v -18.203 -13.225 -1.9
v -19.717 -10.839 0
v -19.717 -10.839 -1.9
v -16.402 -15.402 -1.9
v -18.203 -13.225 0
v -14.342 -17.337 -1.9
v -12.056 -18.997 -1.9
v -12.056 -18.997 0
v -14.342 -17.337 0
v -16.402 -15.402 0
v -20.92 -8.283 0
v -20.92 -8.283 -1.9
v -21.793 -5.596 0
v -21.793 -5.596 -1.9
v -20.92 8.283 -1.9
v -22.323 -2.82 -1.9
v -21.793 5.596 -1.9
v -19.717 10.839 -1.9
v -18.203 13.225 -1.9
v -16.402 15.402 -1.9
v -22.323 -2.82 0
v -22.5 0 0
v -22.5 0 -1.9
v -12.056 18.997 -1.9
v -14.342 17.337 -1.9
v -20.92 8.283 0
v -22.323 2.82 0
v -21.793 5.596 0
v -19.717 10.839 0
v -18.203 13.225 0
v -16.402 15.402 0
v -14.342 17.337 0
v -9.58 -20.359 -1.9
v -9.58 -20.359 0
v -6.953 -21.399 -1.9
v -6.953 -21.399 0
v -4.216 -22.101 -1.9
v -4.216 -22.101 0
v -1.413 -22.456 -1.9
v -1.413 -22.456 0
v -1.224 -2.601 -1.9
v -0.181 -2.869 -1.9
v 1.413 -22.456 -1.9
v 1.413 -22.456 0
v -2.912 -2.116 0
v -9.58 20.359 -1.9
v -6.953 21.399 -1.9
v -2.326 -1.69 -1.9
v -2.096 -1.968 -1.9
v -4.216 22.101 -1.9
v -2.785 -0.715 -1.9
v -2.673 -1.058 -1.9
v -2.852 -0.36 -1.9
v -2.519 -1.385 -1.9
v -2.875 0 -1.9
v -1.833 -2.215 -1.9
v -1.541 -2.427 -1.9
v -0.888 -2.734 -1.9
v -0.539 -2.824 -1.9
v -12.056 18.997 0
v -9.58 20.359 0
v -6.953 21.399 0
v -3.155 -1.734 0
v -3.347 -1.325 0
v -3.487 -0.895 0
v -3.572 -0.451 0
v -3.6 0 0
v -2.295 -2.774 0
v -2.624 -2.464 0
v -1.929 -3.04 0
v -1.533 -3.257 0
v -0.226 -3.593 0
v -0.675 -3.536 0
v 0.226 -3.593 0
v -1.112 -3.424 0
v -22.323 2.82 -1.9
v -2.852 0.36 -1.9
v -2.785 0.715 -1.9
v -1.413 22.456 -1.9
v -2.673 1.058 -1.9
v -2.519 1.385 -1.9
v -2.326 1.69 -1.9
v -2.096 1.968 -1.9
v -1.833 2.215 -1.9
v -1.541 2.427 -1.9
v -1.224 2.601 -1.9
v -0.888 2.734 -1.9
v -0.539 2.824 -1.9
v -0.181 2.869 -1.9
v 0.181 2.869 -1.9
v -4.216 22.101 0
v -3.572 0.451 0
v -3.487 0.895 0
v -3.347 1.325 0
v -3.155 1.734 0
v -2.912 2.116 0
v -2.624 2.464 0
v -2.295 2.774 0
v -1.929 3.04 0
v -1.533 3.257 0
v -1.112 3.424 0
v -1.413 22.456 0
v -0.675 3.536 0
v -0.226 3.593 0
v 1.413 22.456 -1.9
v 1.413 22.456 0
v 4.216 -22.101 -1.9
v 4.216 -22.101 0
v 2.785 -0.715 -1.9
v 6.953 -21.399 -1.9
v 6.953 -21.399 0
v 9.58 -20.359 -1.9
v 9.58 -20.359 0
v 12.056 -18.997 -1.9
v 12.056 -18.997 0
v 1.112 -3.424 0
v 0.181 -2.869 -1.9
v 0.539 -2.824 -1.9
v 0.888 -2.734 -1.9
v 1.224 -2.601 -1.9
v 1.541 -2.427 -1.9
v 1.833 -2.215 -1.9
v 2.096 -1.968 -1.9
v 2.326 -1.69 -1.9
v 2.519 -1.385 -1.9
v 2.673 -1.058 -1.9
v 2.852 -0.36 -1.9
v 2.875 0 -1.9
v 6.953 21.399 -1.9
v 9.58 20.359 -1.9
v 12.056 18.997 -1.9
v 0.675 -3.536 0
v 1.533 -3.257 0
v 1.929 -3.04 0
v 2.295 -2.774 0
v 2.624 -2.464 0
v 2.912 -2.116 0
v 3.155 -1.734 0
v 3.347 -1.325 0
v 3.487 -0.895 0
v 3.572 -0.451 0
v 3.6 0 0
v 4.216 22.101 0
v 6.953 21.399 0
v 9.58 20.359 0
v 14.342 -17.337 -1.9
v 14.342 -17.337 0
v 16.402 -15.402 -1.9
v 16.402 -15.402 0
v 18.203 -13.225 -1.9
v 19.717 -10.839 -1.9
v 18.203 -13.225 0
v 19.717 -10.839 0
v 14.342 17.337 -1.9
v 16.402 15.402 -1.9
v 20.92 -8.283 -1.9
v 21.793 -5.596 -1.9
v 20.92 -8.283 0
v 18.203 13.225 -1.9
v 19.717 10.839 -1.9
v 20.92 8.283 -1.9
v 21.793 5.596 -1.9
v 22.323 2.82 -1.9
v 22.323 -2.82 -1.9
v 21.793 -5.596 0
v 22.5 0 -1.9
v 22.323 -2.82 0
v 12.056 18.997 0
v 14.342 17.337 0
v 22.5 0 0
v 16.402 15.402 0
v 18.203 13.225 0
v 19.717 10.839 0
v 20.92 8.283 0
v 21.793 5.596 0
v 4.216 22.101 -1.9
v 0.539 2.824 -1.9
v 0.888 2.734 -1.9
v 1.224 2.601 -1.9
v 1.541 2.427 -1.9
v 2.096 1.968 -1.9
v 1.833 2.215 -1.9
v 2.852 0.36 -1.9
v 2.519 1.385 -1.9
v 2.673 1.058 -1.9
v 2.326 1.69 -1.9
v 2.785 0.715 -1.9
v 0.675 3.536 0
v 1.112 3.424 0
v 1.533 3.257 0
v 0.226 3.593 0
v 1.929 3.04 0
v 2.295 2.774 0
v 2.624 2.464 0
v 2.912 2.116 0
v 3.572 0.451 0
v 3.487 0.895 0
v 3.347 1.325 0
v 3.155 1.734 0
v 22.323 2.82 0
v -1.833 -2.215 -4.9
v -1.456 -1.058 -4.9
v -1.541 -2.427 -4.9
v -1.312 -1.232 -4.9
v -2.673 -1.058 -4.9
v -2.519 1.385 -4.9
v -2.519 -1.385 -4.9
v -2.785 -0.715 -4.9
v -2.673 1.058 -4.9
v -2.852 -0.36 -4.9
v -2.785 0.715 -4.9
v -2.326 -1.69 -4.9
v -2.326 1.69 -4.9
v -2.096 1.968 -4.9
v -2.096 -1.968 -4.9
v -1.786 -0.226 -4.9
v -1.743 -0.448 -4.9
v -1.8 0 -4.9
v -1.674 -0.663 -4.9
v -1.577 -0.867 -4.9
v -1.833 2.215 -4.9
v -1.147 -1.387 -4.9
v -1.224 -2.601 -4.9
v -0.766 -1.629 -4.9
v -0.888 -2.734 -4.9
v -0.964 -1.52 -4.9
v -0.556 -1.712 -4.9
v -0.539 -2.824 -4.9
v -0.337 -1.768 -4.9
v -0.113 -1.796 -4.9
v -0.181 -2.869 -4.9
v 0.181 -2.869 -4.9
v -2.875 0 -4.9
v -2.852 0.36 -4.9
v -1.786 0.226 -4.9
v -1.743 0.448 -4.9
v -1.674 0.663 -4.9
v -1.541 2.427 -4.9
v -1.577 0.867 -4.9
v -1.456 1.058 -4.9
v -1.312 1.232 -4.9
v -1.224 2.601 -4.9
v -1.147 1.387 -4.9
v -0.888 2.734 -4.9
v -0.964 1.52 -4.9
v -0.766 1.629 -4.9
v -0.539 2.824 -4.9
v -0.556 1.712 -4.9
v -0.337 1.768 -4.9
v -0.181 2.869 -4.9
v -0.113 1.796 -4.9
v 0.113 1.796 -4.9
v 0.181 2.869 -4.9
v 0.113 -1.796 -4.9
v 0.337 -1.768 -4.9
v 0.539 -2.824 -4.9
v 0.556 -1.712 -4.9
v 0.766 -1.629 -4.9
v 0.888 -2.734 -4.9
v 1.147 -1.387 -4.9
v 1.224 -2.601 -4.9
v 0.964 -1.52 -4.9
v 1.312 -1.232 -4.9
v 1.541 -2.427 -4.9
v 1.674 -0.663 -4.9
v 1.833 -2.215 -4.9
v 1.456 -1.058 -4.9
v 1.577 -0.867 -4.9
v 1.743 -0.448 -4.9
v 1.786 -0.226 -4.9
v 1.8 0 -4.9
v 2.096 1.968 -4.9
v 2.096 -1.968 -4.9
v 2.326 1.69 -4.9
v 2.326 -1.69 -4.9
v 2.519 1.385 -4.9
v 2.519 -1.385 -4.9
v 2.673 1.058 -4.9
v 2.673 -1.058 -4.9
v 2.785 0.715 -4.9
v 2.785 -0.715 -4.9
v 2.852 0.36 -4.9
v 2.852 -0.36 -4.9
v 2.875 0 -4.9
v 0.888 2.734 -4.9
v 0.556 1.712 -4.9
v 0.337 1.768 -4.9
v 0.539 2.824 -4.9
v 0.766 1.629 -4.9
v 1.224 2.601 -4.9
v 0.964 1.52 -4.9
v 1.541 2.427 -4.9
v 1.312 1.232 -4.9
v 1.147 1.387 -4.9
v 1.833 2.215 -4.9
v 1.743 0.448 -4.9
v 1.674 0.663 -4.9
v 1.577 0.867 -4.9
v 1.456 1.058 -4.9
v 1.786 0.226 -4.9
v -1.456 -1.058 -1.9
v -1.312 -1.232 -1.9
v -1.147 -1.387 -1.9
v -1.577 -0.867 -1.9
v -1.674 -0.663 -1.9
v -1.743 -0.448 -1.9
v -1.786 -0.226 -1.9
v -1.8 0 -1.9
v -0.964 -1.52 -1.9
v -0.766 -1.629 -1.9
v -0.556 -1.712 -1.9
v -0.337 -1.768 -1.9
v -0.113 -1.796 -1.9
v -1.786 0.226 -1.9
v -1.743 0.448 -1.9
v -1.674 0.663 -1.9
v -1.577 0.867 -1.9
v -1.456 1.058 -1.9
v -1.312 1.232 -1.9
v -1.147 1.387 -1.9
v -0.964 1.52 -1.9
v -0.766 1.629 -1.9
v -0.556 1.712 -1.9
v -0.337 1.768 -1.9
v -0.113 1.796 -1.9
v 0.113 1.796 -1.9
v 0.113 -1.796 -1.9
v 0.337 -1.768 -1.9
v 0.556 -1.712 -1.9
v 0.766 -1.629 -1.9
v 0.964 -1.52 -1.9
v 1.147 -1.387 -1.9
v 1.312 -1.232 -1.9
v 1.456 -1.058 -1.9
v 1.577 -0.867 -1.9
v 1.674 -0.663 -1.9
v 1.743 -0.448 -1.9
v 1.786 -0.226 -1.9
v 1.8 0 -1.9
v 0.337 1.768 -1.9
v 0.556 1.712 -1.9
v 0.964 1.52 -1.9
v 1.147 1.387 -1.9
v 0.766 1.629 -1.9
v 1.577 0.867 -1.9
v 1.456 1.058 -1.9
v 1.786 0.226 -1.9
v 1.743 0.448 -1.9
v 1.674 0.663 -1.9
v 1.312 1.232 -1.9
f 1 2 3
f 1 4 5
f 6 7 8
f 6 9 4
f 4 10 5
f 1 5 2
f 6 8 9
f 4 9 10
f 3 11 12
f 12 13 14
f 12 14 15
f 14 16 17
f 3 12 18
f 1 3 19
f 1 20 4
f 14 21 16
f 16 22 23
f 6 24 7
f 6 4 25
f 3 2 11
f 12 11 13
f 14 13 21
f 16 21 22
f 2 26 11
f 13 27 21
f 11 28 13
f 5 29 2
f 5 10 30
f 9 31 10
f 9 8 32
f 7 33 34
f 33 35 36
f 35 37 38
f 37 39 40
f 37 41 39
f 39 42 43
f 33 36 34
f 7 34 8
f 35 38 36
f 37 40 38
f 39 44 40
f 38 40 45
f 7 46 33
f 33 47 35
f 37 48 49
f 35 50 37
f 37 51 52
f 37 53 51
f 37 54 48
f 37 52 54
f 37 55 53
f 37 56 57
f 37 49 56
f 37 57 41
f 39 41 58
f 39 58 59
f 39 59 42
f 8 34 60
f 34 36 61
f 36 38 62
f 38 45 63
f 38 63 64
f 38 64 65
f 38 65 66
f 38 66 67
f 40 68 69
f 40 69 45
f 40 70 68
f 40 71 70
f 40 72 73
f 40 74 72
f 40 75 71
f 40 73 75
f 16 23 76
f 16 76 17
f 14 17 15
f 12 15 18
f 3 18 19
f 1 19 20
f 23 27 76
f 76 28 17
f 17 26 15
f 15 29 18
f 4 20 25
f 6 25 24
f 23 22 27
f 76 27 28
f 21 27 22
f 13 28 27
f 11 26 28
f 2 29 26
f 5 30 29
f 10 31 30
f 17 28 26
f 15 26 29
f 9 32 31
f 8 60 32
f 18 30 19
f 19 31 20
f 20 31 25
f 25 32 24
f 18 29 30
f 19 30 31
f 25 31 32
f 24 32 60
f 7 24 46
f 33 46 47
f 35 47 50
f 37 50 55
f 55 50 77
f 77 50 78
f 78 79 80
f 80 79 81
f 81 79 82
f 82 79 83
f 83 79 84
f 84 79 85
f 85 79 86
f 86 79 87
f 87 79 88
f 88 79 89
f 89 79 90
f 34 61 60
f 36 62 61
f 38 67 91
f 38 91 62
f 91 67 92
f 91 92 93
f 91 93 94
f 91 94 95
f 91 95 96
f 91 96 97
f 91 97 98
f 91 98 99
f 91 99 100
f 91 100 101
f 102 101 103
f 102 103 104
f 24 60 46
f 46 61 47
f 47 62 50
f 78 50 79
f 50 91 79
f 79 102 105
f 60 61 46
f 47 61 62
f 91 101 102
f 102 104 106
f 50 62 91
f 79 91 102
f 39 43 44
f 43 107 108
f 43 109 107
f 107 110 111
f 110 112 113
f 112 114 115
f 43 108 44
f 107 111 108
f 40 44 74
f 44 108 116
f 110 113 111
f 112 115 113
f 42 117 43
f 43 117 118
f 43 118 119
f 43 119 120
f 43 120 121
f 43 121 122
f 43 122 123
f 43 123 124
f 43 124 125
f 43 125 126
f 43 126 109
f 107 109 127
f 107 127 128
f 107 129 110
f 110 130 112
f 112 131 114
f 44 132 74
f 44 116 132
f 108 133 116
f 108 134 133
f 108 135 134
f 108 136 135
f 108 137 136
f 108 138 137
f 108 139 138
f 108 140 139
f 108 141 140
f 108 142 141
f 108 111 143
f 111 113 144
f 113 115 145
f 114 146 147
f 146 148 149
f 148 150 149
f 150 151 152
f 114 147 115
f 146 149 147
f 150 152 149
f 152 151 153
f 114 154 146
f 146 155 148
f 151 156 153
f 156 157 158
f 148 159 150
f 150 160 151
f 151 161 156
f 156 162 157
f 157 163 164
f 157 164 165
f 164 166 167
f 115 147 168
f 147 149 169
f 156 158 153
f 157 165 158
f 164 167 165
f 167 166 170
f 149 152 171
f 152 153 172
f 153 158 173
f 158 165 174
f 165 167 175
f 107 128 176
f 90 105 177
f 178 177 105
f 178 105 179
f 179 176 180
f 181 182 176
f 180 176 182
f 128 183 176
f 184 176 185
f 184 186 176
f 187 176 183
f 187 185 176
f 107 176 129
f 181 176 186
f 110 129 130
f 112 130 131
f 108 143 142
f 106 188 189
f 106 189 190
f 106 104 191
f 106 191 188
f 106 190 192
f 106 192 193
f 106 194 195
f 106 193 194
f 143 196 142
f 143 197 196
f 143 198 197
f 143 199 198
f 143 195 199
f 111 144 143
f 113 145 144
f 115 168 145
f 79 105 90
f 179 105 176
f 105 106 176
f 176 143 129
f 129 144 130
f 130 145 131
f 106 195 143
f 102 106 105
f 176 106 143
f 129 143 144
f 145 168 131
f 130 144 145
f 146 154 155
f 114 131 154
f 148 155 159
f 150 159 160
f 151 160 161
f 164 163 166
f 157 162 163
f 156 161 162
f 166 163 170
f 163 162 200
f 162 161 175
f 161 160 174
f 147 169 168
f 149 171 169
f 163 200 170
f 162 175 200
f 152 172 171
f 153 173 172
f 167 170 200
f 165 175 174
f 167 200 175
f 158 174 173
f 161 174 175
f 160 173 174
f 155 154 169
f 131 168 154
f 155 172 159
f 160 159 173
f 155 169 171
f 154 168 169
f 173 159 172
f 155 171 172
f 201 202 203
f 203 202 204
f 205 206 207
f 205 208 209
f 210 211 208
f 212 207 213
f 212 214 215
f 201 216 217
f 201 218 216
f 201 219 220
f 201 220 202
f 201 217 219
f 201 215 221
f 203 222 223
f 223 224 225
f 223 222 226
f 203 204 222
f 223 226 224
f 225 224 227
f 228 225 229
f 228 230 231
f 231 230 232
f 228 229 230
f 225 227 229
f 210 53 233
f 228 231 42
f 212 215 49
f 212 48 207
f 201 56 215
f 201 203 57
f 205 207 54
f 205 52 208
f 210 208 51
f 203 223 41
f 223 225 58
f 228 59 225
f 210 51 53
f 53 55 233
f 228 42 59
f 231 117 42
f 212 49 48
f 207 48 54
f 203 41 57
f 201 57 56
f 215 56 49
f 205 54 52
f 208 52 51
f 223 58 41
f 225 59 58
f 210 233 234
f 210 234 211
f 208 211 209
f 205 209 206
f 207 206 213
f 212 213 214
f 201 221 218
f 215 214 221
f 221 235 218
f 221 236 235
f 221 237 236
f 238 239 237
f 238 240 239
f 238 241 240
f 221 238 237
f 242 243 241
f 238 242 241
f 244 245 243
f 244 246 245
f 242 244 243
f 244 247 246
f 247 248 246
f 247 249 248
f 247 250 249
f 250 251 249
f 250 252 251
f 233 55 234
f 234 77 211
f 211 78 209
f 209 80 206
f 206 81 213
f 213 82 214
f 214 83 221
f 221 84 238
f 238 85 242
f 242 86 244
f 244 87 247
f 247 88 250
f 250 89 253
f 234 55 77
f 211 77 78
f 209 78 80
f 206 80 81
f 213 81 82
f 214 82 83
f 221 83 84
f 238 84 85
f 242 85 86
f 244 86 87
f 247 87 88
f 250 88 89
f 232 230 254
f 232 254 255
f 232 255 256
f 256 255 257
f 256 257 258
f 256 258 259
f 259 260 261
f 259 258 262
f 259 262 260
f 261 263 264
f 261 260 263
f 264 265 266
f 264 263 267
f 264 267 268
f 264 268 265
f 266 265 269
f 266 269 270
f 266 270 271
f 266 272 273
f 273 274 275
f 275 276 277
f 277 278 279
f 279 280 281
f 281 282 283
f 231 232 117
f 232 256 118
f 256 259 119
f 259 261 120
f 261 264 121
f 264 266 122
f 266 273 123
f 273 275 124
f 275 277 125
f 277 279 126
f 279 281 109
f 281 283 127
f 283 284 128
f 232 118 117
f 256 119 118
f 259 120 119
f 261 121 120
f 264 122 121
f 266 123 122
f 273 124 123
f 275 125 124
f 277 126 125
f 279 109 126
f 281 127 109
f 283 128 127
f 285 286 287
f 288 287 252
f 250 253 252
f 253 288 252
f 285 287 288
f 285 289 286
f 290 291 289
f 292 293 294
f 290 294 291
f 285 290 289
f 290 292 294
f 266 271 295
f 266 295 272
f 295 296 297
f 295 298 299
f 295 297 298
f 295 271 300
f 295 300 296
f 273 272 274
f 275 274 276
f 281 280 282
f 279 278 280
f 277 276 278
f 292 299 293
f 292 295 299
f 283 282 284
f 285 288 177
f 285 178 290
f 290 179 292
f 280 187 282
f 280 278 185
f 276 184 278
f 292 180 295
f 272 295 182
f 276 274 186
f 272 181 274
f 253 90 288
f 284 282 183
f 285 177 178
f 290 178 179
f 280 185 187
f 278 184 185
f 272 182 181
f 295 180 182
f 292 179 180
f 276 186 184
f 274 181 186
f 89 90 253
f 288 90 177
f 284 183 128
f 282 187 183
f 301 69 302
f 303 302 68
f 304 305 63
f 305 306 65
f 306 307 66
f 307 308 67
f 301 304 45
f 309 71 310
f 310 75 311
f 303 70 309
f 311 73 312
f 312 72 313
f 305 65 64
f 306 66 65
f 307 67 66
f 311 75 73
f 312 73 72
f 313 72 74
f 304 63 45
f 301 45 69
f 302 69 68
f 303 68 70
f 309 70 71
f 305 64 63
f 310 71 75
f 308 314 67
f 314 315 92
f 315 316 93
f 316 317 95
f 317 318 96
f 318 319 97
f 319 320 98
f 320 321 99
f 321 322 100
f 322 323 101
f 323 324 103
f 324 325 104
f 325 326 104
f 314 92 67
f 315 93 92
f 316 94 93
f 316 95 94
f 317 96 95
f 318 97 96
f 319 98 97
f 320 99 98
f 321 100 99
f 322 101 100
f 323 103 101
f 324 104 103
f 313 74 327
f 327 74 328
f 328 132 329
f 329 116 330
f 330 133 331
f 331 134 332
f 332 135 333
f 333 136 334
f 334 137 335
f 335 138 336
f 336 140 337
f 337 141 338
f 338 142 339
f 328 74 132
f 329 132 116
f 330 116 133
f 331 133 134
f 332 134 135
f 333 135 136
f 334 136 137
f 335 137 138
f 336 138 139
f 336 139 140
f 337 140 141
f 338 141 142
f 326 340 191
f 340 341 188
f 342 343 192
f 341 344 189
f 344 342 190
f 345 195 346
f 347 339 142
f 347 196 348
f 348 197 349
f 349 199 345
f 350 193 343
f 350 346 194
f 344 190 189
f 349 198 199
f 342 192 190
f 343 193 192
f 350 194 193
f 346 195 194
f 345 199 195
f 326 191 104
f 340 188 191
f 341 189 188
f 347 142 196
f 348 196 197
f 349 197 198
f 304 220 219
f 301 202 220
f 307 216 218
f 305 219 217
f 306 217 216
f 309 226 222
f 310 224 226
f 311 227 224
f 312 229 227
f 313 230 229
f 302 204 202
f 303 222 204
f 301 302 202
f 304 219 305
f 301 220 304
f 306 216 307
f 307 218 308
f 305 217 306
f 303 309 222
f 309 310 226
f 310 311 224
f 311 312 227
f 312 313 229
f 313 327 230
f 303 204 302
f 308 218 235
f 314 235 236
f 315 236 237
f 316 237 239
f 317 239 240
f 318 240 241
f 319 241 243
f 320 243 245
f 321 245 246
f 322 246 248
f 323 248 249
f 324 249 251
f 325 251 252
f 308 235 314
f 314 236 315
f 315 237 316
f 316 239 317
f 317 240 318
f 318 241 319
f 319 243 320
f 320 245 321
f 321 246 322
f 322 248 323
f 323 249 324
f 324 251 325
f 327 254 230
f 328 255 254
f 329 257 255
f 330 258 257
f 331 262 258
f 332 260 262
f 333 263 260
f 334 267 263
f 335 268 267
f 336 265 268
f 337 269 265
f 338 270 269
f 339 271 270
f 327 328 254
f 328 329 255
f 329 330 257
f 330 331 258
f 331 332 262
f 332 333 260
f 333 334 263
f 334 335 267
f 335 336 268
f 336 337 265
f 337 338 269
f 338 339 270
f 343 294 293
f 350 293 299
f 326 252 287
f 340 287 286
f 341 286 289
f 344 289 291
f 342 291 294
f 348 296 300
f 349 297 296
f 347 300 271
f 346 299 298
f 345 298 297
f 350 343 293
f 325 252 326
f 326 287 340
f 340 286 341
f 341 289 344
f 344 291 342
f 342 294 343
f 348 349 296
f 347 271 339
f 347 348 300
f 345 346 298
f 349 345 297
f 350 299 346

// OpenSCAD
$fn = 50;

difference() {
	union() {
		translate(v = [0, 0, -1.9]) {
			cylinder(h = 1.9, r = 22.5);
		}
		#translate(v = [0, 0, -4.9]) {
			cylinder(h = 4.9, r = 2.875);
		}
	}
	union() {
		translate(v = [0, 0, 0]) {
			rotate(a = [0, 0, 0]) {
				difference() {
					union() {
						translate(v = [0, 0, -4.9]) {
							cylinder(h = 4.9, r = 1.5);
						}
						translate(v = [0, 0, -1.9]) {
							cylinder(h = 1.9, r1 = 1.8, r2 = 3.6);
						}
						translate(v = [0, 0, -4.9]) {
							cylinder(h = 4.9, r = 1.8);
						}
						translate(v = [0, 0, -4.9]) {
							cylinder(h = 4.9, r = 1.5);
						}
					}
					union();
				}
			}
		}
	}
}
